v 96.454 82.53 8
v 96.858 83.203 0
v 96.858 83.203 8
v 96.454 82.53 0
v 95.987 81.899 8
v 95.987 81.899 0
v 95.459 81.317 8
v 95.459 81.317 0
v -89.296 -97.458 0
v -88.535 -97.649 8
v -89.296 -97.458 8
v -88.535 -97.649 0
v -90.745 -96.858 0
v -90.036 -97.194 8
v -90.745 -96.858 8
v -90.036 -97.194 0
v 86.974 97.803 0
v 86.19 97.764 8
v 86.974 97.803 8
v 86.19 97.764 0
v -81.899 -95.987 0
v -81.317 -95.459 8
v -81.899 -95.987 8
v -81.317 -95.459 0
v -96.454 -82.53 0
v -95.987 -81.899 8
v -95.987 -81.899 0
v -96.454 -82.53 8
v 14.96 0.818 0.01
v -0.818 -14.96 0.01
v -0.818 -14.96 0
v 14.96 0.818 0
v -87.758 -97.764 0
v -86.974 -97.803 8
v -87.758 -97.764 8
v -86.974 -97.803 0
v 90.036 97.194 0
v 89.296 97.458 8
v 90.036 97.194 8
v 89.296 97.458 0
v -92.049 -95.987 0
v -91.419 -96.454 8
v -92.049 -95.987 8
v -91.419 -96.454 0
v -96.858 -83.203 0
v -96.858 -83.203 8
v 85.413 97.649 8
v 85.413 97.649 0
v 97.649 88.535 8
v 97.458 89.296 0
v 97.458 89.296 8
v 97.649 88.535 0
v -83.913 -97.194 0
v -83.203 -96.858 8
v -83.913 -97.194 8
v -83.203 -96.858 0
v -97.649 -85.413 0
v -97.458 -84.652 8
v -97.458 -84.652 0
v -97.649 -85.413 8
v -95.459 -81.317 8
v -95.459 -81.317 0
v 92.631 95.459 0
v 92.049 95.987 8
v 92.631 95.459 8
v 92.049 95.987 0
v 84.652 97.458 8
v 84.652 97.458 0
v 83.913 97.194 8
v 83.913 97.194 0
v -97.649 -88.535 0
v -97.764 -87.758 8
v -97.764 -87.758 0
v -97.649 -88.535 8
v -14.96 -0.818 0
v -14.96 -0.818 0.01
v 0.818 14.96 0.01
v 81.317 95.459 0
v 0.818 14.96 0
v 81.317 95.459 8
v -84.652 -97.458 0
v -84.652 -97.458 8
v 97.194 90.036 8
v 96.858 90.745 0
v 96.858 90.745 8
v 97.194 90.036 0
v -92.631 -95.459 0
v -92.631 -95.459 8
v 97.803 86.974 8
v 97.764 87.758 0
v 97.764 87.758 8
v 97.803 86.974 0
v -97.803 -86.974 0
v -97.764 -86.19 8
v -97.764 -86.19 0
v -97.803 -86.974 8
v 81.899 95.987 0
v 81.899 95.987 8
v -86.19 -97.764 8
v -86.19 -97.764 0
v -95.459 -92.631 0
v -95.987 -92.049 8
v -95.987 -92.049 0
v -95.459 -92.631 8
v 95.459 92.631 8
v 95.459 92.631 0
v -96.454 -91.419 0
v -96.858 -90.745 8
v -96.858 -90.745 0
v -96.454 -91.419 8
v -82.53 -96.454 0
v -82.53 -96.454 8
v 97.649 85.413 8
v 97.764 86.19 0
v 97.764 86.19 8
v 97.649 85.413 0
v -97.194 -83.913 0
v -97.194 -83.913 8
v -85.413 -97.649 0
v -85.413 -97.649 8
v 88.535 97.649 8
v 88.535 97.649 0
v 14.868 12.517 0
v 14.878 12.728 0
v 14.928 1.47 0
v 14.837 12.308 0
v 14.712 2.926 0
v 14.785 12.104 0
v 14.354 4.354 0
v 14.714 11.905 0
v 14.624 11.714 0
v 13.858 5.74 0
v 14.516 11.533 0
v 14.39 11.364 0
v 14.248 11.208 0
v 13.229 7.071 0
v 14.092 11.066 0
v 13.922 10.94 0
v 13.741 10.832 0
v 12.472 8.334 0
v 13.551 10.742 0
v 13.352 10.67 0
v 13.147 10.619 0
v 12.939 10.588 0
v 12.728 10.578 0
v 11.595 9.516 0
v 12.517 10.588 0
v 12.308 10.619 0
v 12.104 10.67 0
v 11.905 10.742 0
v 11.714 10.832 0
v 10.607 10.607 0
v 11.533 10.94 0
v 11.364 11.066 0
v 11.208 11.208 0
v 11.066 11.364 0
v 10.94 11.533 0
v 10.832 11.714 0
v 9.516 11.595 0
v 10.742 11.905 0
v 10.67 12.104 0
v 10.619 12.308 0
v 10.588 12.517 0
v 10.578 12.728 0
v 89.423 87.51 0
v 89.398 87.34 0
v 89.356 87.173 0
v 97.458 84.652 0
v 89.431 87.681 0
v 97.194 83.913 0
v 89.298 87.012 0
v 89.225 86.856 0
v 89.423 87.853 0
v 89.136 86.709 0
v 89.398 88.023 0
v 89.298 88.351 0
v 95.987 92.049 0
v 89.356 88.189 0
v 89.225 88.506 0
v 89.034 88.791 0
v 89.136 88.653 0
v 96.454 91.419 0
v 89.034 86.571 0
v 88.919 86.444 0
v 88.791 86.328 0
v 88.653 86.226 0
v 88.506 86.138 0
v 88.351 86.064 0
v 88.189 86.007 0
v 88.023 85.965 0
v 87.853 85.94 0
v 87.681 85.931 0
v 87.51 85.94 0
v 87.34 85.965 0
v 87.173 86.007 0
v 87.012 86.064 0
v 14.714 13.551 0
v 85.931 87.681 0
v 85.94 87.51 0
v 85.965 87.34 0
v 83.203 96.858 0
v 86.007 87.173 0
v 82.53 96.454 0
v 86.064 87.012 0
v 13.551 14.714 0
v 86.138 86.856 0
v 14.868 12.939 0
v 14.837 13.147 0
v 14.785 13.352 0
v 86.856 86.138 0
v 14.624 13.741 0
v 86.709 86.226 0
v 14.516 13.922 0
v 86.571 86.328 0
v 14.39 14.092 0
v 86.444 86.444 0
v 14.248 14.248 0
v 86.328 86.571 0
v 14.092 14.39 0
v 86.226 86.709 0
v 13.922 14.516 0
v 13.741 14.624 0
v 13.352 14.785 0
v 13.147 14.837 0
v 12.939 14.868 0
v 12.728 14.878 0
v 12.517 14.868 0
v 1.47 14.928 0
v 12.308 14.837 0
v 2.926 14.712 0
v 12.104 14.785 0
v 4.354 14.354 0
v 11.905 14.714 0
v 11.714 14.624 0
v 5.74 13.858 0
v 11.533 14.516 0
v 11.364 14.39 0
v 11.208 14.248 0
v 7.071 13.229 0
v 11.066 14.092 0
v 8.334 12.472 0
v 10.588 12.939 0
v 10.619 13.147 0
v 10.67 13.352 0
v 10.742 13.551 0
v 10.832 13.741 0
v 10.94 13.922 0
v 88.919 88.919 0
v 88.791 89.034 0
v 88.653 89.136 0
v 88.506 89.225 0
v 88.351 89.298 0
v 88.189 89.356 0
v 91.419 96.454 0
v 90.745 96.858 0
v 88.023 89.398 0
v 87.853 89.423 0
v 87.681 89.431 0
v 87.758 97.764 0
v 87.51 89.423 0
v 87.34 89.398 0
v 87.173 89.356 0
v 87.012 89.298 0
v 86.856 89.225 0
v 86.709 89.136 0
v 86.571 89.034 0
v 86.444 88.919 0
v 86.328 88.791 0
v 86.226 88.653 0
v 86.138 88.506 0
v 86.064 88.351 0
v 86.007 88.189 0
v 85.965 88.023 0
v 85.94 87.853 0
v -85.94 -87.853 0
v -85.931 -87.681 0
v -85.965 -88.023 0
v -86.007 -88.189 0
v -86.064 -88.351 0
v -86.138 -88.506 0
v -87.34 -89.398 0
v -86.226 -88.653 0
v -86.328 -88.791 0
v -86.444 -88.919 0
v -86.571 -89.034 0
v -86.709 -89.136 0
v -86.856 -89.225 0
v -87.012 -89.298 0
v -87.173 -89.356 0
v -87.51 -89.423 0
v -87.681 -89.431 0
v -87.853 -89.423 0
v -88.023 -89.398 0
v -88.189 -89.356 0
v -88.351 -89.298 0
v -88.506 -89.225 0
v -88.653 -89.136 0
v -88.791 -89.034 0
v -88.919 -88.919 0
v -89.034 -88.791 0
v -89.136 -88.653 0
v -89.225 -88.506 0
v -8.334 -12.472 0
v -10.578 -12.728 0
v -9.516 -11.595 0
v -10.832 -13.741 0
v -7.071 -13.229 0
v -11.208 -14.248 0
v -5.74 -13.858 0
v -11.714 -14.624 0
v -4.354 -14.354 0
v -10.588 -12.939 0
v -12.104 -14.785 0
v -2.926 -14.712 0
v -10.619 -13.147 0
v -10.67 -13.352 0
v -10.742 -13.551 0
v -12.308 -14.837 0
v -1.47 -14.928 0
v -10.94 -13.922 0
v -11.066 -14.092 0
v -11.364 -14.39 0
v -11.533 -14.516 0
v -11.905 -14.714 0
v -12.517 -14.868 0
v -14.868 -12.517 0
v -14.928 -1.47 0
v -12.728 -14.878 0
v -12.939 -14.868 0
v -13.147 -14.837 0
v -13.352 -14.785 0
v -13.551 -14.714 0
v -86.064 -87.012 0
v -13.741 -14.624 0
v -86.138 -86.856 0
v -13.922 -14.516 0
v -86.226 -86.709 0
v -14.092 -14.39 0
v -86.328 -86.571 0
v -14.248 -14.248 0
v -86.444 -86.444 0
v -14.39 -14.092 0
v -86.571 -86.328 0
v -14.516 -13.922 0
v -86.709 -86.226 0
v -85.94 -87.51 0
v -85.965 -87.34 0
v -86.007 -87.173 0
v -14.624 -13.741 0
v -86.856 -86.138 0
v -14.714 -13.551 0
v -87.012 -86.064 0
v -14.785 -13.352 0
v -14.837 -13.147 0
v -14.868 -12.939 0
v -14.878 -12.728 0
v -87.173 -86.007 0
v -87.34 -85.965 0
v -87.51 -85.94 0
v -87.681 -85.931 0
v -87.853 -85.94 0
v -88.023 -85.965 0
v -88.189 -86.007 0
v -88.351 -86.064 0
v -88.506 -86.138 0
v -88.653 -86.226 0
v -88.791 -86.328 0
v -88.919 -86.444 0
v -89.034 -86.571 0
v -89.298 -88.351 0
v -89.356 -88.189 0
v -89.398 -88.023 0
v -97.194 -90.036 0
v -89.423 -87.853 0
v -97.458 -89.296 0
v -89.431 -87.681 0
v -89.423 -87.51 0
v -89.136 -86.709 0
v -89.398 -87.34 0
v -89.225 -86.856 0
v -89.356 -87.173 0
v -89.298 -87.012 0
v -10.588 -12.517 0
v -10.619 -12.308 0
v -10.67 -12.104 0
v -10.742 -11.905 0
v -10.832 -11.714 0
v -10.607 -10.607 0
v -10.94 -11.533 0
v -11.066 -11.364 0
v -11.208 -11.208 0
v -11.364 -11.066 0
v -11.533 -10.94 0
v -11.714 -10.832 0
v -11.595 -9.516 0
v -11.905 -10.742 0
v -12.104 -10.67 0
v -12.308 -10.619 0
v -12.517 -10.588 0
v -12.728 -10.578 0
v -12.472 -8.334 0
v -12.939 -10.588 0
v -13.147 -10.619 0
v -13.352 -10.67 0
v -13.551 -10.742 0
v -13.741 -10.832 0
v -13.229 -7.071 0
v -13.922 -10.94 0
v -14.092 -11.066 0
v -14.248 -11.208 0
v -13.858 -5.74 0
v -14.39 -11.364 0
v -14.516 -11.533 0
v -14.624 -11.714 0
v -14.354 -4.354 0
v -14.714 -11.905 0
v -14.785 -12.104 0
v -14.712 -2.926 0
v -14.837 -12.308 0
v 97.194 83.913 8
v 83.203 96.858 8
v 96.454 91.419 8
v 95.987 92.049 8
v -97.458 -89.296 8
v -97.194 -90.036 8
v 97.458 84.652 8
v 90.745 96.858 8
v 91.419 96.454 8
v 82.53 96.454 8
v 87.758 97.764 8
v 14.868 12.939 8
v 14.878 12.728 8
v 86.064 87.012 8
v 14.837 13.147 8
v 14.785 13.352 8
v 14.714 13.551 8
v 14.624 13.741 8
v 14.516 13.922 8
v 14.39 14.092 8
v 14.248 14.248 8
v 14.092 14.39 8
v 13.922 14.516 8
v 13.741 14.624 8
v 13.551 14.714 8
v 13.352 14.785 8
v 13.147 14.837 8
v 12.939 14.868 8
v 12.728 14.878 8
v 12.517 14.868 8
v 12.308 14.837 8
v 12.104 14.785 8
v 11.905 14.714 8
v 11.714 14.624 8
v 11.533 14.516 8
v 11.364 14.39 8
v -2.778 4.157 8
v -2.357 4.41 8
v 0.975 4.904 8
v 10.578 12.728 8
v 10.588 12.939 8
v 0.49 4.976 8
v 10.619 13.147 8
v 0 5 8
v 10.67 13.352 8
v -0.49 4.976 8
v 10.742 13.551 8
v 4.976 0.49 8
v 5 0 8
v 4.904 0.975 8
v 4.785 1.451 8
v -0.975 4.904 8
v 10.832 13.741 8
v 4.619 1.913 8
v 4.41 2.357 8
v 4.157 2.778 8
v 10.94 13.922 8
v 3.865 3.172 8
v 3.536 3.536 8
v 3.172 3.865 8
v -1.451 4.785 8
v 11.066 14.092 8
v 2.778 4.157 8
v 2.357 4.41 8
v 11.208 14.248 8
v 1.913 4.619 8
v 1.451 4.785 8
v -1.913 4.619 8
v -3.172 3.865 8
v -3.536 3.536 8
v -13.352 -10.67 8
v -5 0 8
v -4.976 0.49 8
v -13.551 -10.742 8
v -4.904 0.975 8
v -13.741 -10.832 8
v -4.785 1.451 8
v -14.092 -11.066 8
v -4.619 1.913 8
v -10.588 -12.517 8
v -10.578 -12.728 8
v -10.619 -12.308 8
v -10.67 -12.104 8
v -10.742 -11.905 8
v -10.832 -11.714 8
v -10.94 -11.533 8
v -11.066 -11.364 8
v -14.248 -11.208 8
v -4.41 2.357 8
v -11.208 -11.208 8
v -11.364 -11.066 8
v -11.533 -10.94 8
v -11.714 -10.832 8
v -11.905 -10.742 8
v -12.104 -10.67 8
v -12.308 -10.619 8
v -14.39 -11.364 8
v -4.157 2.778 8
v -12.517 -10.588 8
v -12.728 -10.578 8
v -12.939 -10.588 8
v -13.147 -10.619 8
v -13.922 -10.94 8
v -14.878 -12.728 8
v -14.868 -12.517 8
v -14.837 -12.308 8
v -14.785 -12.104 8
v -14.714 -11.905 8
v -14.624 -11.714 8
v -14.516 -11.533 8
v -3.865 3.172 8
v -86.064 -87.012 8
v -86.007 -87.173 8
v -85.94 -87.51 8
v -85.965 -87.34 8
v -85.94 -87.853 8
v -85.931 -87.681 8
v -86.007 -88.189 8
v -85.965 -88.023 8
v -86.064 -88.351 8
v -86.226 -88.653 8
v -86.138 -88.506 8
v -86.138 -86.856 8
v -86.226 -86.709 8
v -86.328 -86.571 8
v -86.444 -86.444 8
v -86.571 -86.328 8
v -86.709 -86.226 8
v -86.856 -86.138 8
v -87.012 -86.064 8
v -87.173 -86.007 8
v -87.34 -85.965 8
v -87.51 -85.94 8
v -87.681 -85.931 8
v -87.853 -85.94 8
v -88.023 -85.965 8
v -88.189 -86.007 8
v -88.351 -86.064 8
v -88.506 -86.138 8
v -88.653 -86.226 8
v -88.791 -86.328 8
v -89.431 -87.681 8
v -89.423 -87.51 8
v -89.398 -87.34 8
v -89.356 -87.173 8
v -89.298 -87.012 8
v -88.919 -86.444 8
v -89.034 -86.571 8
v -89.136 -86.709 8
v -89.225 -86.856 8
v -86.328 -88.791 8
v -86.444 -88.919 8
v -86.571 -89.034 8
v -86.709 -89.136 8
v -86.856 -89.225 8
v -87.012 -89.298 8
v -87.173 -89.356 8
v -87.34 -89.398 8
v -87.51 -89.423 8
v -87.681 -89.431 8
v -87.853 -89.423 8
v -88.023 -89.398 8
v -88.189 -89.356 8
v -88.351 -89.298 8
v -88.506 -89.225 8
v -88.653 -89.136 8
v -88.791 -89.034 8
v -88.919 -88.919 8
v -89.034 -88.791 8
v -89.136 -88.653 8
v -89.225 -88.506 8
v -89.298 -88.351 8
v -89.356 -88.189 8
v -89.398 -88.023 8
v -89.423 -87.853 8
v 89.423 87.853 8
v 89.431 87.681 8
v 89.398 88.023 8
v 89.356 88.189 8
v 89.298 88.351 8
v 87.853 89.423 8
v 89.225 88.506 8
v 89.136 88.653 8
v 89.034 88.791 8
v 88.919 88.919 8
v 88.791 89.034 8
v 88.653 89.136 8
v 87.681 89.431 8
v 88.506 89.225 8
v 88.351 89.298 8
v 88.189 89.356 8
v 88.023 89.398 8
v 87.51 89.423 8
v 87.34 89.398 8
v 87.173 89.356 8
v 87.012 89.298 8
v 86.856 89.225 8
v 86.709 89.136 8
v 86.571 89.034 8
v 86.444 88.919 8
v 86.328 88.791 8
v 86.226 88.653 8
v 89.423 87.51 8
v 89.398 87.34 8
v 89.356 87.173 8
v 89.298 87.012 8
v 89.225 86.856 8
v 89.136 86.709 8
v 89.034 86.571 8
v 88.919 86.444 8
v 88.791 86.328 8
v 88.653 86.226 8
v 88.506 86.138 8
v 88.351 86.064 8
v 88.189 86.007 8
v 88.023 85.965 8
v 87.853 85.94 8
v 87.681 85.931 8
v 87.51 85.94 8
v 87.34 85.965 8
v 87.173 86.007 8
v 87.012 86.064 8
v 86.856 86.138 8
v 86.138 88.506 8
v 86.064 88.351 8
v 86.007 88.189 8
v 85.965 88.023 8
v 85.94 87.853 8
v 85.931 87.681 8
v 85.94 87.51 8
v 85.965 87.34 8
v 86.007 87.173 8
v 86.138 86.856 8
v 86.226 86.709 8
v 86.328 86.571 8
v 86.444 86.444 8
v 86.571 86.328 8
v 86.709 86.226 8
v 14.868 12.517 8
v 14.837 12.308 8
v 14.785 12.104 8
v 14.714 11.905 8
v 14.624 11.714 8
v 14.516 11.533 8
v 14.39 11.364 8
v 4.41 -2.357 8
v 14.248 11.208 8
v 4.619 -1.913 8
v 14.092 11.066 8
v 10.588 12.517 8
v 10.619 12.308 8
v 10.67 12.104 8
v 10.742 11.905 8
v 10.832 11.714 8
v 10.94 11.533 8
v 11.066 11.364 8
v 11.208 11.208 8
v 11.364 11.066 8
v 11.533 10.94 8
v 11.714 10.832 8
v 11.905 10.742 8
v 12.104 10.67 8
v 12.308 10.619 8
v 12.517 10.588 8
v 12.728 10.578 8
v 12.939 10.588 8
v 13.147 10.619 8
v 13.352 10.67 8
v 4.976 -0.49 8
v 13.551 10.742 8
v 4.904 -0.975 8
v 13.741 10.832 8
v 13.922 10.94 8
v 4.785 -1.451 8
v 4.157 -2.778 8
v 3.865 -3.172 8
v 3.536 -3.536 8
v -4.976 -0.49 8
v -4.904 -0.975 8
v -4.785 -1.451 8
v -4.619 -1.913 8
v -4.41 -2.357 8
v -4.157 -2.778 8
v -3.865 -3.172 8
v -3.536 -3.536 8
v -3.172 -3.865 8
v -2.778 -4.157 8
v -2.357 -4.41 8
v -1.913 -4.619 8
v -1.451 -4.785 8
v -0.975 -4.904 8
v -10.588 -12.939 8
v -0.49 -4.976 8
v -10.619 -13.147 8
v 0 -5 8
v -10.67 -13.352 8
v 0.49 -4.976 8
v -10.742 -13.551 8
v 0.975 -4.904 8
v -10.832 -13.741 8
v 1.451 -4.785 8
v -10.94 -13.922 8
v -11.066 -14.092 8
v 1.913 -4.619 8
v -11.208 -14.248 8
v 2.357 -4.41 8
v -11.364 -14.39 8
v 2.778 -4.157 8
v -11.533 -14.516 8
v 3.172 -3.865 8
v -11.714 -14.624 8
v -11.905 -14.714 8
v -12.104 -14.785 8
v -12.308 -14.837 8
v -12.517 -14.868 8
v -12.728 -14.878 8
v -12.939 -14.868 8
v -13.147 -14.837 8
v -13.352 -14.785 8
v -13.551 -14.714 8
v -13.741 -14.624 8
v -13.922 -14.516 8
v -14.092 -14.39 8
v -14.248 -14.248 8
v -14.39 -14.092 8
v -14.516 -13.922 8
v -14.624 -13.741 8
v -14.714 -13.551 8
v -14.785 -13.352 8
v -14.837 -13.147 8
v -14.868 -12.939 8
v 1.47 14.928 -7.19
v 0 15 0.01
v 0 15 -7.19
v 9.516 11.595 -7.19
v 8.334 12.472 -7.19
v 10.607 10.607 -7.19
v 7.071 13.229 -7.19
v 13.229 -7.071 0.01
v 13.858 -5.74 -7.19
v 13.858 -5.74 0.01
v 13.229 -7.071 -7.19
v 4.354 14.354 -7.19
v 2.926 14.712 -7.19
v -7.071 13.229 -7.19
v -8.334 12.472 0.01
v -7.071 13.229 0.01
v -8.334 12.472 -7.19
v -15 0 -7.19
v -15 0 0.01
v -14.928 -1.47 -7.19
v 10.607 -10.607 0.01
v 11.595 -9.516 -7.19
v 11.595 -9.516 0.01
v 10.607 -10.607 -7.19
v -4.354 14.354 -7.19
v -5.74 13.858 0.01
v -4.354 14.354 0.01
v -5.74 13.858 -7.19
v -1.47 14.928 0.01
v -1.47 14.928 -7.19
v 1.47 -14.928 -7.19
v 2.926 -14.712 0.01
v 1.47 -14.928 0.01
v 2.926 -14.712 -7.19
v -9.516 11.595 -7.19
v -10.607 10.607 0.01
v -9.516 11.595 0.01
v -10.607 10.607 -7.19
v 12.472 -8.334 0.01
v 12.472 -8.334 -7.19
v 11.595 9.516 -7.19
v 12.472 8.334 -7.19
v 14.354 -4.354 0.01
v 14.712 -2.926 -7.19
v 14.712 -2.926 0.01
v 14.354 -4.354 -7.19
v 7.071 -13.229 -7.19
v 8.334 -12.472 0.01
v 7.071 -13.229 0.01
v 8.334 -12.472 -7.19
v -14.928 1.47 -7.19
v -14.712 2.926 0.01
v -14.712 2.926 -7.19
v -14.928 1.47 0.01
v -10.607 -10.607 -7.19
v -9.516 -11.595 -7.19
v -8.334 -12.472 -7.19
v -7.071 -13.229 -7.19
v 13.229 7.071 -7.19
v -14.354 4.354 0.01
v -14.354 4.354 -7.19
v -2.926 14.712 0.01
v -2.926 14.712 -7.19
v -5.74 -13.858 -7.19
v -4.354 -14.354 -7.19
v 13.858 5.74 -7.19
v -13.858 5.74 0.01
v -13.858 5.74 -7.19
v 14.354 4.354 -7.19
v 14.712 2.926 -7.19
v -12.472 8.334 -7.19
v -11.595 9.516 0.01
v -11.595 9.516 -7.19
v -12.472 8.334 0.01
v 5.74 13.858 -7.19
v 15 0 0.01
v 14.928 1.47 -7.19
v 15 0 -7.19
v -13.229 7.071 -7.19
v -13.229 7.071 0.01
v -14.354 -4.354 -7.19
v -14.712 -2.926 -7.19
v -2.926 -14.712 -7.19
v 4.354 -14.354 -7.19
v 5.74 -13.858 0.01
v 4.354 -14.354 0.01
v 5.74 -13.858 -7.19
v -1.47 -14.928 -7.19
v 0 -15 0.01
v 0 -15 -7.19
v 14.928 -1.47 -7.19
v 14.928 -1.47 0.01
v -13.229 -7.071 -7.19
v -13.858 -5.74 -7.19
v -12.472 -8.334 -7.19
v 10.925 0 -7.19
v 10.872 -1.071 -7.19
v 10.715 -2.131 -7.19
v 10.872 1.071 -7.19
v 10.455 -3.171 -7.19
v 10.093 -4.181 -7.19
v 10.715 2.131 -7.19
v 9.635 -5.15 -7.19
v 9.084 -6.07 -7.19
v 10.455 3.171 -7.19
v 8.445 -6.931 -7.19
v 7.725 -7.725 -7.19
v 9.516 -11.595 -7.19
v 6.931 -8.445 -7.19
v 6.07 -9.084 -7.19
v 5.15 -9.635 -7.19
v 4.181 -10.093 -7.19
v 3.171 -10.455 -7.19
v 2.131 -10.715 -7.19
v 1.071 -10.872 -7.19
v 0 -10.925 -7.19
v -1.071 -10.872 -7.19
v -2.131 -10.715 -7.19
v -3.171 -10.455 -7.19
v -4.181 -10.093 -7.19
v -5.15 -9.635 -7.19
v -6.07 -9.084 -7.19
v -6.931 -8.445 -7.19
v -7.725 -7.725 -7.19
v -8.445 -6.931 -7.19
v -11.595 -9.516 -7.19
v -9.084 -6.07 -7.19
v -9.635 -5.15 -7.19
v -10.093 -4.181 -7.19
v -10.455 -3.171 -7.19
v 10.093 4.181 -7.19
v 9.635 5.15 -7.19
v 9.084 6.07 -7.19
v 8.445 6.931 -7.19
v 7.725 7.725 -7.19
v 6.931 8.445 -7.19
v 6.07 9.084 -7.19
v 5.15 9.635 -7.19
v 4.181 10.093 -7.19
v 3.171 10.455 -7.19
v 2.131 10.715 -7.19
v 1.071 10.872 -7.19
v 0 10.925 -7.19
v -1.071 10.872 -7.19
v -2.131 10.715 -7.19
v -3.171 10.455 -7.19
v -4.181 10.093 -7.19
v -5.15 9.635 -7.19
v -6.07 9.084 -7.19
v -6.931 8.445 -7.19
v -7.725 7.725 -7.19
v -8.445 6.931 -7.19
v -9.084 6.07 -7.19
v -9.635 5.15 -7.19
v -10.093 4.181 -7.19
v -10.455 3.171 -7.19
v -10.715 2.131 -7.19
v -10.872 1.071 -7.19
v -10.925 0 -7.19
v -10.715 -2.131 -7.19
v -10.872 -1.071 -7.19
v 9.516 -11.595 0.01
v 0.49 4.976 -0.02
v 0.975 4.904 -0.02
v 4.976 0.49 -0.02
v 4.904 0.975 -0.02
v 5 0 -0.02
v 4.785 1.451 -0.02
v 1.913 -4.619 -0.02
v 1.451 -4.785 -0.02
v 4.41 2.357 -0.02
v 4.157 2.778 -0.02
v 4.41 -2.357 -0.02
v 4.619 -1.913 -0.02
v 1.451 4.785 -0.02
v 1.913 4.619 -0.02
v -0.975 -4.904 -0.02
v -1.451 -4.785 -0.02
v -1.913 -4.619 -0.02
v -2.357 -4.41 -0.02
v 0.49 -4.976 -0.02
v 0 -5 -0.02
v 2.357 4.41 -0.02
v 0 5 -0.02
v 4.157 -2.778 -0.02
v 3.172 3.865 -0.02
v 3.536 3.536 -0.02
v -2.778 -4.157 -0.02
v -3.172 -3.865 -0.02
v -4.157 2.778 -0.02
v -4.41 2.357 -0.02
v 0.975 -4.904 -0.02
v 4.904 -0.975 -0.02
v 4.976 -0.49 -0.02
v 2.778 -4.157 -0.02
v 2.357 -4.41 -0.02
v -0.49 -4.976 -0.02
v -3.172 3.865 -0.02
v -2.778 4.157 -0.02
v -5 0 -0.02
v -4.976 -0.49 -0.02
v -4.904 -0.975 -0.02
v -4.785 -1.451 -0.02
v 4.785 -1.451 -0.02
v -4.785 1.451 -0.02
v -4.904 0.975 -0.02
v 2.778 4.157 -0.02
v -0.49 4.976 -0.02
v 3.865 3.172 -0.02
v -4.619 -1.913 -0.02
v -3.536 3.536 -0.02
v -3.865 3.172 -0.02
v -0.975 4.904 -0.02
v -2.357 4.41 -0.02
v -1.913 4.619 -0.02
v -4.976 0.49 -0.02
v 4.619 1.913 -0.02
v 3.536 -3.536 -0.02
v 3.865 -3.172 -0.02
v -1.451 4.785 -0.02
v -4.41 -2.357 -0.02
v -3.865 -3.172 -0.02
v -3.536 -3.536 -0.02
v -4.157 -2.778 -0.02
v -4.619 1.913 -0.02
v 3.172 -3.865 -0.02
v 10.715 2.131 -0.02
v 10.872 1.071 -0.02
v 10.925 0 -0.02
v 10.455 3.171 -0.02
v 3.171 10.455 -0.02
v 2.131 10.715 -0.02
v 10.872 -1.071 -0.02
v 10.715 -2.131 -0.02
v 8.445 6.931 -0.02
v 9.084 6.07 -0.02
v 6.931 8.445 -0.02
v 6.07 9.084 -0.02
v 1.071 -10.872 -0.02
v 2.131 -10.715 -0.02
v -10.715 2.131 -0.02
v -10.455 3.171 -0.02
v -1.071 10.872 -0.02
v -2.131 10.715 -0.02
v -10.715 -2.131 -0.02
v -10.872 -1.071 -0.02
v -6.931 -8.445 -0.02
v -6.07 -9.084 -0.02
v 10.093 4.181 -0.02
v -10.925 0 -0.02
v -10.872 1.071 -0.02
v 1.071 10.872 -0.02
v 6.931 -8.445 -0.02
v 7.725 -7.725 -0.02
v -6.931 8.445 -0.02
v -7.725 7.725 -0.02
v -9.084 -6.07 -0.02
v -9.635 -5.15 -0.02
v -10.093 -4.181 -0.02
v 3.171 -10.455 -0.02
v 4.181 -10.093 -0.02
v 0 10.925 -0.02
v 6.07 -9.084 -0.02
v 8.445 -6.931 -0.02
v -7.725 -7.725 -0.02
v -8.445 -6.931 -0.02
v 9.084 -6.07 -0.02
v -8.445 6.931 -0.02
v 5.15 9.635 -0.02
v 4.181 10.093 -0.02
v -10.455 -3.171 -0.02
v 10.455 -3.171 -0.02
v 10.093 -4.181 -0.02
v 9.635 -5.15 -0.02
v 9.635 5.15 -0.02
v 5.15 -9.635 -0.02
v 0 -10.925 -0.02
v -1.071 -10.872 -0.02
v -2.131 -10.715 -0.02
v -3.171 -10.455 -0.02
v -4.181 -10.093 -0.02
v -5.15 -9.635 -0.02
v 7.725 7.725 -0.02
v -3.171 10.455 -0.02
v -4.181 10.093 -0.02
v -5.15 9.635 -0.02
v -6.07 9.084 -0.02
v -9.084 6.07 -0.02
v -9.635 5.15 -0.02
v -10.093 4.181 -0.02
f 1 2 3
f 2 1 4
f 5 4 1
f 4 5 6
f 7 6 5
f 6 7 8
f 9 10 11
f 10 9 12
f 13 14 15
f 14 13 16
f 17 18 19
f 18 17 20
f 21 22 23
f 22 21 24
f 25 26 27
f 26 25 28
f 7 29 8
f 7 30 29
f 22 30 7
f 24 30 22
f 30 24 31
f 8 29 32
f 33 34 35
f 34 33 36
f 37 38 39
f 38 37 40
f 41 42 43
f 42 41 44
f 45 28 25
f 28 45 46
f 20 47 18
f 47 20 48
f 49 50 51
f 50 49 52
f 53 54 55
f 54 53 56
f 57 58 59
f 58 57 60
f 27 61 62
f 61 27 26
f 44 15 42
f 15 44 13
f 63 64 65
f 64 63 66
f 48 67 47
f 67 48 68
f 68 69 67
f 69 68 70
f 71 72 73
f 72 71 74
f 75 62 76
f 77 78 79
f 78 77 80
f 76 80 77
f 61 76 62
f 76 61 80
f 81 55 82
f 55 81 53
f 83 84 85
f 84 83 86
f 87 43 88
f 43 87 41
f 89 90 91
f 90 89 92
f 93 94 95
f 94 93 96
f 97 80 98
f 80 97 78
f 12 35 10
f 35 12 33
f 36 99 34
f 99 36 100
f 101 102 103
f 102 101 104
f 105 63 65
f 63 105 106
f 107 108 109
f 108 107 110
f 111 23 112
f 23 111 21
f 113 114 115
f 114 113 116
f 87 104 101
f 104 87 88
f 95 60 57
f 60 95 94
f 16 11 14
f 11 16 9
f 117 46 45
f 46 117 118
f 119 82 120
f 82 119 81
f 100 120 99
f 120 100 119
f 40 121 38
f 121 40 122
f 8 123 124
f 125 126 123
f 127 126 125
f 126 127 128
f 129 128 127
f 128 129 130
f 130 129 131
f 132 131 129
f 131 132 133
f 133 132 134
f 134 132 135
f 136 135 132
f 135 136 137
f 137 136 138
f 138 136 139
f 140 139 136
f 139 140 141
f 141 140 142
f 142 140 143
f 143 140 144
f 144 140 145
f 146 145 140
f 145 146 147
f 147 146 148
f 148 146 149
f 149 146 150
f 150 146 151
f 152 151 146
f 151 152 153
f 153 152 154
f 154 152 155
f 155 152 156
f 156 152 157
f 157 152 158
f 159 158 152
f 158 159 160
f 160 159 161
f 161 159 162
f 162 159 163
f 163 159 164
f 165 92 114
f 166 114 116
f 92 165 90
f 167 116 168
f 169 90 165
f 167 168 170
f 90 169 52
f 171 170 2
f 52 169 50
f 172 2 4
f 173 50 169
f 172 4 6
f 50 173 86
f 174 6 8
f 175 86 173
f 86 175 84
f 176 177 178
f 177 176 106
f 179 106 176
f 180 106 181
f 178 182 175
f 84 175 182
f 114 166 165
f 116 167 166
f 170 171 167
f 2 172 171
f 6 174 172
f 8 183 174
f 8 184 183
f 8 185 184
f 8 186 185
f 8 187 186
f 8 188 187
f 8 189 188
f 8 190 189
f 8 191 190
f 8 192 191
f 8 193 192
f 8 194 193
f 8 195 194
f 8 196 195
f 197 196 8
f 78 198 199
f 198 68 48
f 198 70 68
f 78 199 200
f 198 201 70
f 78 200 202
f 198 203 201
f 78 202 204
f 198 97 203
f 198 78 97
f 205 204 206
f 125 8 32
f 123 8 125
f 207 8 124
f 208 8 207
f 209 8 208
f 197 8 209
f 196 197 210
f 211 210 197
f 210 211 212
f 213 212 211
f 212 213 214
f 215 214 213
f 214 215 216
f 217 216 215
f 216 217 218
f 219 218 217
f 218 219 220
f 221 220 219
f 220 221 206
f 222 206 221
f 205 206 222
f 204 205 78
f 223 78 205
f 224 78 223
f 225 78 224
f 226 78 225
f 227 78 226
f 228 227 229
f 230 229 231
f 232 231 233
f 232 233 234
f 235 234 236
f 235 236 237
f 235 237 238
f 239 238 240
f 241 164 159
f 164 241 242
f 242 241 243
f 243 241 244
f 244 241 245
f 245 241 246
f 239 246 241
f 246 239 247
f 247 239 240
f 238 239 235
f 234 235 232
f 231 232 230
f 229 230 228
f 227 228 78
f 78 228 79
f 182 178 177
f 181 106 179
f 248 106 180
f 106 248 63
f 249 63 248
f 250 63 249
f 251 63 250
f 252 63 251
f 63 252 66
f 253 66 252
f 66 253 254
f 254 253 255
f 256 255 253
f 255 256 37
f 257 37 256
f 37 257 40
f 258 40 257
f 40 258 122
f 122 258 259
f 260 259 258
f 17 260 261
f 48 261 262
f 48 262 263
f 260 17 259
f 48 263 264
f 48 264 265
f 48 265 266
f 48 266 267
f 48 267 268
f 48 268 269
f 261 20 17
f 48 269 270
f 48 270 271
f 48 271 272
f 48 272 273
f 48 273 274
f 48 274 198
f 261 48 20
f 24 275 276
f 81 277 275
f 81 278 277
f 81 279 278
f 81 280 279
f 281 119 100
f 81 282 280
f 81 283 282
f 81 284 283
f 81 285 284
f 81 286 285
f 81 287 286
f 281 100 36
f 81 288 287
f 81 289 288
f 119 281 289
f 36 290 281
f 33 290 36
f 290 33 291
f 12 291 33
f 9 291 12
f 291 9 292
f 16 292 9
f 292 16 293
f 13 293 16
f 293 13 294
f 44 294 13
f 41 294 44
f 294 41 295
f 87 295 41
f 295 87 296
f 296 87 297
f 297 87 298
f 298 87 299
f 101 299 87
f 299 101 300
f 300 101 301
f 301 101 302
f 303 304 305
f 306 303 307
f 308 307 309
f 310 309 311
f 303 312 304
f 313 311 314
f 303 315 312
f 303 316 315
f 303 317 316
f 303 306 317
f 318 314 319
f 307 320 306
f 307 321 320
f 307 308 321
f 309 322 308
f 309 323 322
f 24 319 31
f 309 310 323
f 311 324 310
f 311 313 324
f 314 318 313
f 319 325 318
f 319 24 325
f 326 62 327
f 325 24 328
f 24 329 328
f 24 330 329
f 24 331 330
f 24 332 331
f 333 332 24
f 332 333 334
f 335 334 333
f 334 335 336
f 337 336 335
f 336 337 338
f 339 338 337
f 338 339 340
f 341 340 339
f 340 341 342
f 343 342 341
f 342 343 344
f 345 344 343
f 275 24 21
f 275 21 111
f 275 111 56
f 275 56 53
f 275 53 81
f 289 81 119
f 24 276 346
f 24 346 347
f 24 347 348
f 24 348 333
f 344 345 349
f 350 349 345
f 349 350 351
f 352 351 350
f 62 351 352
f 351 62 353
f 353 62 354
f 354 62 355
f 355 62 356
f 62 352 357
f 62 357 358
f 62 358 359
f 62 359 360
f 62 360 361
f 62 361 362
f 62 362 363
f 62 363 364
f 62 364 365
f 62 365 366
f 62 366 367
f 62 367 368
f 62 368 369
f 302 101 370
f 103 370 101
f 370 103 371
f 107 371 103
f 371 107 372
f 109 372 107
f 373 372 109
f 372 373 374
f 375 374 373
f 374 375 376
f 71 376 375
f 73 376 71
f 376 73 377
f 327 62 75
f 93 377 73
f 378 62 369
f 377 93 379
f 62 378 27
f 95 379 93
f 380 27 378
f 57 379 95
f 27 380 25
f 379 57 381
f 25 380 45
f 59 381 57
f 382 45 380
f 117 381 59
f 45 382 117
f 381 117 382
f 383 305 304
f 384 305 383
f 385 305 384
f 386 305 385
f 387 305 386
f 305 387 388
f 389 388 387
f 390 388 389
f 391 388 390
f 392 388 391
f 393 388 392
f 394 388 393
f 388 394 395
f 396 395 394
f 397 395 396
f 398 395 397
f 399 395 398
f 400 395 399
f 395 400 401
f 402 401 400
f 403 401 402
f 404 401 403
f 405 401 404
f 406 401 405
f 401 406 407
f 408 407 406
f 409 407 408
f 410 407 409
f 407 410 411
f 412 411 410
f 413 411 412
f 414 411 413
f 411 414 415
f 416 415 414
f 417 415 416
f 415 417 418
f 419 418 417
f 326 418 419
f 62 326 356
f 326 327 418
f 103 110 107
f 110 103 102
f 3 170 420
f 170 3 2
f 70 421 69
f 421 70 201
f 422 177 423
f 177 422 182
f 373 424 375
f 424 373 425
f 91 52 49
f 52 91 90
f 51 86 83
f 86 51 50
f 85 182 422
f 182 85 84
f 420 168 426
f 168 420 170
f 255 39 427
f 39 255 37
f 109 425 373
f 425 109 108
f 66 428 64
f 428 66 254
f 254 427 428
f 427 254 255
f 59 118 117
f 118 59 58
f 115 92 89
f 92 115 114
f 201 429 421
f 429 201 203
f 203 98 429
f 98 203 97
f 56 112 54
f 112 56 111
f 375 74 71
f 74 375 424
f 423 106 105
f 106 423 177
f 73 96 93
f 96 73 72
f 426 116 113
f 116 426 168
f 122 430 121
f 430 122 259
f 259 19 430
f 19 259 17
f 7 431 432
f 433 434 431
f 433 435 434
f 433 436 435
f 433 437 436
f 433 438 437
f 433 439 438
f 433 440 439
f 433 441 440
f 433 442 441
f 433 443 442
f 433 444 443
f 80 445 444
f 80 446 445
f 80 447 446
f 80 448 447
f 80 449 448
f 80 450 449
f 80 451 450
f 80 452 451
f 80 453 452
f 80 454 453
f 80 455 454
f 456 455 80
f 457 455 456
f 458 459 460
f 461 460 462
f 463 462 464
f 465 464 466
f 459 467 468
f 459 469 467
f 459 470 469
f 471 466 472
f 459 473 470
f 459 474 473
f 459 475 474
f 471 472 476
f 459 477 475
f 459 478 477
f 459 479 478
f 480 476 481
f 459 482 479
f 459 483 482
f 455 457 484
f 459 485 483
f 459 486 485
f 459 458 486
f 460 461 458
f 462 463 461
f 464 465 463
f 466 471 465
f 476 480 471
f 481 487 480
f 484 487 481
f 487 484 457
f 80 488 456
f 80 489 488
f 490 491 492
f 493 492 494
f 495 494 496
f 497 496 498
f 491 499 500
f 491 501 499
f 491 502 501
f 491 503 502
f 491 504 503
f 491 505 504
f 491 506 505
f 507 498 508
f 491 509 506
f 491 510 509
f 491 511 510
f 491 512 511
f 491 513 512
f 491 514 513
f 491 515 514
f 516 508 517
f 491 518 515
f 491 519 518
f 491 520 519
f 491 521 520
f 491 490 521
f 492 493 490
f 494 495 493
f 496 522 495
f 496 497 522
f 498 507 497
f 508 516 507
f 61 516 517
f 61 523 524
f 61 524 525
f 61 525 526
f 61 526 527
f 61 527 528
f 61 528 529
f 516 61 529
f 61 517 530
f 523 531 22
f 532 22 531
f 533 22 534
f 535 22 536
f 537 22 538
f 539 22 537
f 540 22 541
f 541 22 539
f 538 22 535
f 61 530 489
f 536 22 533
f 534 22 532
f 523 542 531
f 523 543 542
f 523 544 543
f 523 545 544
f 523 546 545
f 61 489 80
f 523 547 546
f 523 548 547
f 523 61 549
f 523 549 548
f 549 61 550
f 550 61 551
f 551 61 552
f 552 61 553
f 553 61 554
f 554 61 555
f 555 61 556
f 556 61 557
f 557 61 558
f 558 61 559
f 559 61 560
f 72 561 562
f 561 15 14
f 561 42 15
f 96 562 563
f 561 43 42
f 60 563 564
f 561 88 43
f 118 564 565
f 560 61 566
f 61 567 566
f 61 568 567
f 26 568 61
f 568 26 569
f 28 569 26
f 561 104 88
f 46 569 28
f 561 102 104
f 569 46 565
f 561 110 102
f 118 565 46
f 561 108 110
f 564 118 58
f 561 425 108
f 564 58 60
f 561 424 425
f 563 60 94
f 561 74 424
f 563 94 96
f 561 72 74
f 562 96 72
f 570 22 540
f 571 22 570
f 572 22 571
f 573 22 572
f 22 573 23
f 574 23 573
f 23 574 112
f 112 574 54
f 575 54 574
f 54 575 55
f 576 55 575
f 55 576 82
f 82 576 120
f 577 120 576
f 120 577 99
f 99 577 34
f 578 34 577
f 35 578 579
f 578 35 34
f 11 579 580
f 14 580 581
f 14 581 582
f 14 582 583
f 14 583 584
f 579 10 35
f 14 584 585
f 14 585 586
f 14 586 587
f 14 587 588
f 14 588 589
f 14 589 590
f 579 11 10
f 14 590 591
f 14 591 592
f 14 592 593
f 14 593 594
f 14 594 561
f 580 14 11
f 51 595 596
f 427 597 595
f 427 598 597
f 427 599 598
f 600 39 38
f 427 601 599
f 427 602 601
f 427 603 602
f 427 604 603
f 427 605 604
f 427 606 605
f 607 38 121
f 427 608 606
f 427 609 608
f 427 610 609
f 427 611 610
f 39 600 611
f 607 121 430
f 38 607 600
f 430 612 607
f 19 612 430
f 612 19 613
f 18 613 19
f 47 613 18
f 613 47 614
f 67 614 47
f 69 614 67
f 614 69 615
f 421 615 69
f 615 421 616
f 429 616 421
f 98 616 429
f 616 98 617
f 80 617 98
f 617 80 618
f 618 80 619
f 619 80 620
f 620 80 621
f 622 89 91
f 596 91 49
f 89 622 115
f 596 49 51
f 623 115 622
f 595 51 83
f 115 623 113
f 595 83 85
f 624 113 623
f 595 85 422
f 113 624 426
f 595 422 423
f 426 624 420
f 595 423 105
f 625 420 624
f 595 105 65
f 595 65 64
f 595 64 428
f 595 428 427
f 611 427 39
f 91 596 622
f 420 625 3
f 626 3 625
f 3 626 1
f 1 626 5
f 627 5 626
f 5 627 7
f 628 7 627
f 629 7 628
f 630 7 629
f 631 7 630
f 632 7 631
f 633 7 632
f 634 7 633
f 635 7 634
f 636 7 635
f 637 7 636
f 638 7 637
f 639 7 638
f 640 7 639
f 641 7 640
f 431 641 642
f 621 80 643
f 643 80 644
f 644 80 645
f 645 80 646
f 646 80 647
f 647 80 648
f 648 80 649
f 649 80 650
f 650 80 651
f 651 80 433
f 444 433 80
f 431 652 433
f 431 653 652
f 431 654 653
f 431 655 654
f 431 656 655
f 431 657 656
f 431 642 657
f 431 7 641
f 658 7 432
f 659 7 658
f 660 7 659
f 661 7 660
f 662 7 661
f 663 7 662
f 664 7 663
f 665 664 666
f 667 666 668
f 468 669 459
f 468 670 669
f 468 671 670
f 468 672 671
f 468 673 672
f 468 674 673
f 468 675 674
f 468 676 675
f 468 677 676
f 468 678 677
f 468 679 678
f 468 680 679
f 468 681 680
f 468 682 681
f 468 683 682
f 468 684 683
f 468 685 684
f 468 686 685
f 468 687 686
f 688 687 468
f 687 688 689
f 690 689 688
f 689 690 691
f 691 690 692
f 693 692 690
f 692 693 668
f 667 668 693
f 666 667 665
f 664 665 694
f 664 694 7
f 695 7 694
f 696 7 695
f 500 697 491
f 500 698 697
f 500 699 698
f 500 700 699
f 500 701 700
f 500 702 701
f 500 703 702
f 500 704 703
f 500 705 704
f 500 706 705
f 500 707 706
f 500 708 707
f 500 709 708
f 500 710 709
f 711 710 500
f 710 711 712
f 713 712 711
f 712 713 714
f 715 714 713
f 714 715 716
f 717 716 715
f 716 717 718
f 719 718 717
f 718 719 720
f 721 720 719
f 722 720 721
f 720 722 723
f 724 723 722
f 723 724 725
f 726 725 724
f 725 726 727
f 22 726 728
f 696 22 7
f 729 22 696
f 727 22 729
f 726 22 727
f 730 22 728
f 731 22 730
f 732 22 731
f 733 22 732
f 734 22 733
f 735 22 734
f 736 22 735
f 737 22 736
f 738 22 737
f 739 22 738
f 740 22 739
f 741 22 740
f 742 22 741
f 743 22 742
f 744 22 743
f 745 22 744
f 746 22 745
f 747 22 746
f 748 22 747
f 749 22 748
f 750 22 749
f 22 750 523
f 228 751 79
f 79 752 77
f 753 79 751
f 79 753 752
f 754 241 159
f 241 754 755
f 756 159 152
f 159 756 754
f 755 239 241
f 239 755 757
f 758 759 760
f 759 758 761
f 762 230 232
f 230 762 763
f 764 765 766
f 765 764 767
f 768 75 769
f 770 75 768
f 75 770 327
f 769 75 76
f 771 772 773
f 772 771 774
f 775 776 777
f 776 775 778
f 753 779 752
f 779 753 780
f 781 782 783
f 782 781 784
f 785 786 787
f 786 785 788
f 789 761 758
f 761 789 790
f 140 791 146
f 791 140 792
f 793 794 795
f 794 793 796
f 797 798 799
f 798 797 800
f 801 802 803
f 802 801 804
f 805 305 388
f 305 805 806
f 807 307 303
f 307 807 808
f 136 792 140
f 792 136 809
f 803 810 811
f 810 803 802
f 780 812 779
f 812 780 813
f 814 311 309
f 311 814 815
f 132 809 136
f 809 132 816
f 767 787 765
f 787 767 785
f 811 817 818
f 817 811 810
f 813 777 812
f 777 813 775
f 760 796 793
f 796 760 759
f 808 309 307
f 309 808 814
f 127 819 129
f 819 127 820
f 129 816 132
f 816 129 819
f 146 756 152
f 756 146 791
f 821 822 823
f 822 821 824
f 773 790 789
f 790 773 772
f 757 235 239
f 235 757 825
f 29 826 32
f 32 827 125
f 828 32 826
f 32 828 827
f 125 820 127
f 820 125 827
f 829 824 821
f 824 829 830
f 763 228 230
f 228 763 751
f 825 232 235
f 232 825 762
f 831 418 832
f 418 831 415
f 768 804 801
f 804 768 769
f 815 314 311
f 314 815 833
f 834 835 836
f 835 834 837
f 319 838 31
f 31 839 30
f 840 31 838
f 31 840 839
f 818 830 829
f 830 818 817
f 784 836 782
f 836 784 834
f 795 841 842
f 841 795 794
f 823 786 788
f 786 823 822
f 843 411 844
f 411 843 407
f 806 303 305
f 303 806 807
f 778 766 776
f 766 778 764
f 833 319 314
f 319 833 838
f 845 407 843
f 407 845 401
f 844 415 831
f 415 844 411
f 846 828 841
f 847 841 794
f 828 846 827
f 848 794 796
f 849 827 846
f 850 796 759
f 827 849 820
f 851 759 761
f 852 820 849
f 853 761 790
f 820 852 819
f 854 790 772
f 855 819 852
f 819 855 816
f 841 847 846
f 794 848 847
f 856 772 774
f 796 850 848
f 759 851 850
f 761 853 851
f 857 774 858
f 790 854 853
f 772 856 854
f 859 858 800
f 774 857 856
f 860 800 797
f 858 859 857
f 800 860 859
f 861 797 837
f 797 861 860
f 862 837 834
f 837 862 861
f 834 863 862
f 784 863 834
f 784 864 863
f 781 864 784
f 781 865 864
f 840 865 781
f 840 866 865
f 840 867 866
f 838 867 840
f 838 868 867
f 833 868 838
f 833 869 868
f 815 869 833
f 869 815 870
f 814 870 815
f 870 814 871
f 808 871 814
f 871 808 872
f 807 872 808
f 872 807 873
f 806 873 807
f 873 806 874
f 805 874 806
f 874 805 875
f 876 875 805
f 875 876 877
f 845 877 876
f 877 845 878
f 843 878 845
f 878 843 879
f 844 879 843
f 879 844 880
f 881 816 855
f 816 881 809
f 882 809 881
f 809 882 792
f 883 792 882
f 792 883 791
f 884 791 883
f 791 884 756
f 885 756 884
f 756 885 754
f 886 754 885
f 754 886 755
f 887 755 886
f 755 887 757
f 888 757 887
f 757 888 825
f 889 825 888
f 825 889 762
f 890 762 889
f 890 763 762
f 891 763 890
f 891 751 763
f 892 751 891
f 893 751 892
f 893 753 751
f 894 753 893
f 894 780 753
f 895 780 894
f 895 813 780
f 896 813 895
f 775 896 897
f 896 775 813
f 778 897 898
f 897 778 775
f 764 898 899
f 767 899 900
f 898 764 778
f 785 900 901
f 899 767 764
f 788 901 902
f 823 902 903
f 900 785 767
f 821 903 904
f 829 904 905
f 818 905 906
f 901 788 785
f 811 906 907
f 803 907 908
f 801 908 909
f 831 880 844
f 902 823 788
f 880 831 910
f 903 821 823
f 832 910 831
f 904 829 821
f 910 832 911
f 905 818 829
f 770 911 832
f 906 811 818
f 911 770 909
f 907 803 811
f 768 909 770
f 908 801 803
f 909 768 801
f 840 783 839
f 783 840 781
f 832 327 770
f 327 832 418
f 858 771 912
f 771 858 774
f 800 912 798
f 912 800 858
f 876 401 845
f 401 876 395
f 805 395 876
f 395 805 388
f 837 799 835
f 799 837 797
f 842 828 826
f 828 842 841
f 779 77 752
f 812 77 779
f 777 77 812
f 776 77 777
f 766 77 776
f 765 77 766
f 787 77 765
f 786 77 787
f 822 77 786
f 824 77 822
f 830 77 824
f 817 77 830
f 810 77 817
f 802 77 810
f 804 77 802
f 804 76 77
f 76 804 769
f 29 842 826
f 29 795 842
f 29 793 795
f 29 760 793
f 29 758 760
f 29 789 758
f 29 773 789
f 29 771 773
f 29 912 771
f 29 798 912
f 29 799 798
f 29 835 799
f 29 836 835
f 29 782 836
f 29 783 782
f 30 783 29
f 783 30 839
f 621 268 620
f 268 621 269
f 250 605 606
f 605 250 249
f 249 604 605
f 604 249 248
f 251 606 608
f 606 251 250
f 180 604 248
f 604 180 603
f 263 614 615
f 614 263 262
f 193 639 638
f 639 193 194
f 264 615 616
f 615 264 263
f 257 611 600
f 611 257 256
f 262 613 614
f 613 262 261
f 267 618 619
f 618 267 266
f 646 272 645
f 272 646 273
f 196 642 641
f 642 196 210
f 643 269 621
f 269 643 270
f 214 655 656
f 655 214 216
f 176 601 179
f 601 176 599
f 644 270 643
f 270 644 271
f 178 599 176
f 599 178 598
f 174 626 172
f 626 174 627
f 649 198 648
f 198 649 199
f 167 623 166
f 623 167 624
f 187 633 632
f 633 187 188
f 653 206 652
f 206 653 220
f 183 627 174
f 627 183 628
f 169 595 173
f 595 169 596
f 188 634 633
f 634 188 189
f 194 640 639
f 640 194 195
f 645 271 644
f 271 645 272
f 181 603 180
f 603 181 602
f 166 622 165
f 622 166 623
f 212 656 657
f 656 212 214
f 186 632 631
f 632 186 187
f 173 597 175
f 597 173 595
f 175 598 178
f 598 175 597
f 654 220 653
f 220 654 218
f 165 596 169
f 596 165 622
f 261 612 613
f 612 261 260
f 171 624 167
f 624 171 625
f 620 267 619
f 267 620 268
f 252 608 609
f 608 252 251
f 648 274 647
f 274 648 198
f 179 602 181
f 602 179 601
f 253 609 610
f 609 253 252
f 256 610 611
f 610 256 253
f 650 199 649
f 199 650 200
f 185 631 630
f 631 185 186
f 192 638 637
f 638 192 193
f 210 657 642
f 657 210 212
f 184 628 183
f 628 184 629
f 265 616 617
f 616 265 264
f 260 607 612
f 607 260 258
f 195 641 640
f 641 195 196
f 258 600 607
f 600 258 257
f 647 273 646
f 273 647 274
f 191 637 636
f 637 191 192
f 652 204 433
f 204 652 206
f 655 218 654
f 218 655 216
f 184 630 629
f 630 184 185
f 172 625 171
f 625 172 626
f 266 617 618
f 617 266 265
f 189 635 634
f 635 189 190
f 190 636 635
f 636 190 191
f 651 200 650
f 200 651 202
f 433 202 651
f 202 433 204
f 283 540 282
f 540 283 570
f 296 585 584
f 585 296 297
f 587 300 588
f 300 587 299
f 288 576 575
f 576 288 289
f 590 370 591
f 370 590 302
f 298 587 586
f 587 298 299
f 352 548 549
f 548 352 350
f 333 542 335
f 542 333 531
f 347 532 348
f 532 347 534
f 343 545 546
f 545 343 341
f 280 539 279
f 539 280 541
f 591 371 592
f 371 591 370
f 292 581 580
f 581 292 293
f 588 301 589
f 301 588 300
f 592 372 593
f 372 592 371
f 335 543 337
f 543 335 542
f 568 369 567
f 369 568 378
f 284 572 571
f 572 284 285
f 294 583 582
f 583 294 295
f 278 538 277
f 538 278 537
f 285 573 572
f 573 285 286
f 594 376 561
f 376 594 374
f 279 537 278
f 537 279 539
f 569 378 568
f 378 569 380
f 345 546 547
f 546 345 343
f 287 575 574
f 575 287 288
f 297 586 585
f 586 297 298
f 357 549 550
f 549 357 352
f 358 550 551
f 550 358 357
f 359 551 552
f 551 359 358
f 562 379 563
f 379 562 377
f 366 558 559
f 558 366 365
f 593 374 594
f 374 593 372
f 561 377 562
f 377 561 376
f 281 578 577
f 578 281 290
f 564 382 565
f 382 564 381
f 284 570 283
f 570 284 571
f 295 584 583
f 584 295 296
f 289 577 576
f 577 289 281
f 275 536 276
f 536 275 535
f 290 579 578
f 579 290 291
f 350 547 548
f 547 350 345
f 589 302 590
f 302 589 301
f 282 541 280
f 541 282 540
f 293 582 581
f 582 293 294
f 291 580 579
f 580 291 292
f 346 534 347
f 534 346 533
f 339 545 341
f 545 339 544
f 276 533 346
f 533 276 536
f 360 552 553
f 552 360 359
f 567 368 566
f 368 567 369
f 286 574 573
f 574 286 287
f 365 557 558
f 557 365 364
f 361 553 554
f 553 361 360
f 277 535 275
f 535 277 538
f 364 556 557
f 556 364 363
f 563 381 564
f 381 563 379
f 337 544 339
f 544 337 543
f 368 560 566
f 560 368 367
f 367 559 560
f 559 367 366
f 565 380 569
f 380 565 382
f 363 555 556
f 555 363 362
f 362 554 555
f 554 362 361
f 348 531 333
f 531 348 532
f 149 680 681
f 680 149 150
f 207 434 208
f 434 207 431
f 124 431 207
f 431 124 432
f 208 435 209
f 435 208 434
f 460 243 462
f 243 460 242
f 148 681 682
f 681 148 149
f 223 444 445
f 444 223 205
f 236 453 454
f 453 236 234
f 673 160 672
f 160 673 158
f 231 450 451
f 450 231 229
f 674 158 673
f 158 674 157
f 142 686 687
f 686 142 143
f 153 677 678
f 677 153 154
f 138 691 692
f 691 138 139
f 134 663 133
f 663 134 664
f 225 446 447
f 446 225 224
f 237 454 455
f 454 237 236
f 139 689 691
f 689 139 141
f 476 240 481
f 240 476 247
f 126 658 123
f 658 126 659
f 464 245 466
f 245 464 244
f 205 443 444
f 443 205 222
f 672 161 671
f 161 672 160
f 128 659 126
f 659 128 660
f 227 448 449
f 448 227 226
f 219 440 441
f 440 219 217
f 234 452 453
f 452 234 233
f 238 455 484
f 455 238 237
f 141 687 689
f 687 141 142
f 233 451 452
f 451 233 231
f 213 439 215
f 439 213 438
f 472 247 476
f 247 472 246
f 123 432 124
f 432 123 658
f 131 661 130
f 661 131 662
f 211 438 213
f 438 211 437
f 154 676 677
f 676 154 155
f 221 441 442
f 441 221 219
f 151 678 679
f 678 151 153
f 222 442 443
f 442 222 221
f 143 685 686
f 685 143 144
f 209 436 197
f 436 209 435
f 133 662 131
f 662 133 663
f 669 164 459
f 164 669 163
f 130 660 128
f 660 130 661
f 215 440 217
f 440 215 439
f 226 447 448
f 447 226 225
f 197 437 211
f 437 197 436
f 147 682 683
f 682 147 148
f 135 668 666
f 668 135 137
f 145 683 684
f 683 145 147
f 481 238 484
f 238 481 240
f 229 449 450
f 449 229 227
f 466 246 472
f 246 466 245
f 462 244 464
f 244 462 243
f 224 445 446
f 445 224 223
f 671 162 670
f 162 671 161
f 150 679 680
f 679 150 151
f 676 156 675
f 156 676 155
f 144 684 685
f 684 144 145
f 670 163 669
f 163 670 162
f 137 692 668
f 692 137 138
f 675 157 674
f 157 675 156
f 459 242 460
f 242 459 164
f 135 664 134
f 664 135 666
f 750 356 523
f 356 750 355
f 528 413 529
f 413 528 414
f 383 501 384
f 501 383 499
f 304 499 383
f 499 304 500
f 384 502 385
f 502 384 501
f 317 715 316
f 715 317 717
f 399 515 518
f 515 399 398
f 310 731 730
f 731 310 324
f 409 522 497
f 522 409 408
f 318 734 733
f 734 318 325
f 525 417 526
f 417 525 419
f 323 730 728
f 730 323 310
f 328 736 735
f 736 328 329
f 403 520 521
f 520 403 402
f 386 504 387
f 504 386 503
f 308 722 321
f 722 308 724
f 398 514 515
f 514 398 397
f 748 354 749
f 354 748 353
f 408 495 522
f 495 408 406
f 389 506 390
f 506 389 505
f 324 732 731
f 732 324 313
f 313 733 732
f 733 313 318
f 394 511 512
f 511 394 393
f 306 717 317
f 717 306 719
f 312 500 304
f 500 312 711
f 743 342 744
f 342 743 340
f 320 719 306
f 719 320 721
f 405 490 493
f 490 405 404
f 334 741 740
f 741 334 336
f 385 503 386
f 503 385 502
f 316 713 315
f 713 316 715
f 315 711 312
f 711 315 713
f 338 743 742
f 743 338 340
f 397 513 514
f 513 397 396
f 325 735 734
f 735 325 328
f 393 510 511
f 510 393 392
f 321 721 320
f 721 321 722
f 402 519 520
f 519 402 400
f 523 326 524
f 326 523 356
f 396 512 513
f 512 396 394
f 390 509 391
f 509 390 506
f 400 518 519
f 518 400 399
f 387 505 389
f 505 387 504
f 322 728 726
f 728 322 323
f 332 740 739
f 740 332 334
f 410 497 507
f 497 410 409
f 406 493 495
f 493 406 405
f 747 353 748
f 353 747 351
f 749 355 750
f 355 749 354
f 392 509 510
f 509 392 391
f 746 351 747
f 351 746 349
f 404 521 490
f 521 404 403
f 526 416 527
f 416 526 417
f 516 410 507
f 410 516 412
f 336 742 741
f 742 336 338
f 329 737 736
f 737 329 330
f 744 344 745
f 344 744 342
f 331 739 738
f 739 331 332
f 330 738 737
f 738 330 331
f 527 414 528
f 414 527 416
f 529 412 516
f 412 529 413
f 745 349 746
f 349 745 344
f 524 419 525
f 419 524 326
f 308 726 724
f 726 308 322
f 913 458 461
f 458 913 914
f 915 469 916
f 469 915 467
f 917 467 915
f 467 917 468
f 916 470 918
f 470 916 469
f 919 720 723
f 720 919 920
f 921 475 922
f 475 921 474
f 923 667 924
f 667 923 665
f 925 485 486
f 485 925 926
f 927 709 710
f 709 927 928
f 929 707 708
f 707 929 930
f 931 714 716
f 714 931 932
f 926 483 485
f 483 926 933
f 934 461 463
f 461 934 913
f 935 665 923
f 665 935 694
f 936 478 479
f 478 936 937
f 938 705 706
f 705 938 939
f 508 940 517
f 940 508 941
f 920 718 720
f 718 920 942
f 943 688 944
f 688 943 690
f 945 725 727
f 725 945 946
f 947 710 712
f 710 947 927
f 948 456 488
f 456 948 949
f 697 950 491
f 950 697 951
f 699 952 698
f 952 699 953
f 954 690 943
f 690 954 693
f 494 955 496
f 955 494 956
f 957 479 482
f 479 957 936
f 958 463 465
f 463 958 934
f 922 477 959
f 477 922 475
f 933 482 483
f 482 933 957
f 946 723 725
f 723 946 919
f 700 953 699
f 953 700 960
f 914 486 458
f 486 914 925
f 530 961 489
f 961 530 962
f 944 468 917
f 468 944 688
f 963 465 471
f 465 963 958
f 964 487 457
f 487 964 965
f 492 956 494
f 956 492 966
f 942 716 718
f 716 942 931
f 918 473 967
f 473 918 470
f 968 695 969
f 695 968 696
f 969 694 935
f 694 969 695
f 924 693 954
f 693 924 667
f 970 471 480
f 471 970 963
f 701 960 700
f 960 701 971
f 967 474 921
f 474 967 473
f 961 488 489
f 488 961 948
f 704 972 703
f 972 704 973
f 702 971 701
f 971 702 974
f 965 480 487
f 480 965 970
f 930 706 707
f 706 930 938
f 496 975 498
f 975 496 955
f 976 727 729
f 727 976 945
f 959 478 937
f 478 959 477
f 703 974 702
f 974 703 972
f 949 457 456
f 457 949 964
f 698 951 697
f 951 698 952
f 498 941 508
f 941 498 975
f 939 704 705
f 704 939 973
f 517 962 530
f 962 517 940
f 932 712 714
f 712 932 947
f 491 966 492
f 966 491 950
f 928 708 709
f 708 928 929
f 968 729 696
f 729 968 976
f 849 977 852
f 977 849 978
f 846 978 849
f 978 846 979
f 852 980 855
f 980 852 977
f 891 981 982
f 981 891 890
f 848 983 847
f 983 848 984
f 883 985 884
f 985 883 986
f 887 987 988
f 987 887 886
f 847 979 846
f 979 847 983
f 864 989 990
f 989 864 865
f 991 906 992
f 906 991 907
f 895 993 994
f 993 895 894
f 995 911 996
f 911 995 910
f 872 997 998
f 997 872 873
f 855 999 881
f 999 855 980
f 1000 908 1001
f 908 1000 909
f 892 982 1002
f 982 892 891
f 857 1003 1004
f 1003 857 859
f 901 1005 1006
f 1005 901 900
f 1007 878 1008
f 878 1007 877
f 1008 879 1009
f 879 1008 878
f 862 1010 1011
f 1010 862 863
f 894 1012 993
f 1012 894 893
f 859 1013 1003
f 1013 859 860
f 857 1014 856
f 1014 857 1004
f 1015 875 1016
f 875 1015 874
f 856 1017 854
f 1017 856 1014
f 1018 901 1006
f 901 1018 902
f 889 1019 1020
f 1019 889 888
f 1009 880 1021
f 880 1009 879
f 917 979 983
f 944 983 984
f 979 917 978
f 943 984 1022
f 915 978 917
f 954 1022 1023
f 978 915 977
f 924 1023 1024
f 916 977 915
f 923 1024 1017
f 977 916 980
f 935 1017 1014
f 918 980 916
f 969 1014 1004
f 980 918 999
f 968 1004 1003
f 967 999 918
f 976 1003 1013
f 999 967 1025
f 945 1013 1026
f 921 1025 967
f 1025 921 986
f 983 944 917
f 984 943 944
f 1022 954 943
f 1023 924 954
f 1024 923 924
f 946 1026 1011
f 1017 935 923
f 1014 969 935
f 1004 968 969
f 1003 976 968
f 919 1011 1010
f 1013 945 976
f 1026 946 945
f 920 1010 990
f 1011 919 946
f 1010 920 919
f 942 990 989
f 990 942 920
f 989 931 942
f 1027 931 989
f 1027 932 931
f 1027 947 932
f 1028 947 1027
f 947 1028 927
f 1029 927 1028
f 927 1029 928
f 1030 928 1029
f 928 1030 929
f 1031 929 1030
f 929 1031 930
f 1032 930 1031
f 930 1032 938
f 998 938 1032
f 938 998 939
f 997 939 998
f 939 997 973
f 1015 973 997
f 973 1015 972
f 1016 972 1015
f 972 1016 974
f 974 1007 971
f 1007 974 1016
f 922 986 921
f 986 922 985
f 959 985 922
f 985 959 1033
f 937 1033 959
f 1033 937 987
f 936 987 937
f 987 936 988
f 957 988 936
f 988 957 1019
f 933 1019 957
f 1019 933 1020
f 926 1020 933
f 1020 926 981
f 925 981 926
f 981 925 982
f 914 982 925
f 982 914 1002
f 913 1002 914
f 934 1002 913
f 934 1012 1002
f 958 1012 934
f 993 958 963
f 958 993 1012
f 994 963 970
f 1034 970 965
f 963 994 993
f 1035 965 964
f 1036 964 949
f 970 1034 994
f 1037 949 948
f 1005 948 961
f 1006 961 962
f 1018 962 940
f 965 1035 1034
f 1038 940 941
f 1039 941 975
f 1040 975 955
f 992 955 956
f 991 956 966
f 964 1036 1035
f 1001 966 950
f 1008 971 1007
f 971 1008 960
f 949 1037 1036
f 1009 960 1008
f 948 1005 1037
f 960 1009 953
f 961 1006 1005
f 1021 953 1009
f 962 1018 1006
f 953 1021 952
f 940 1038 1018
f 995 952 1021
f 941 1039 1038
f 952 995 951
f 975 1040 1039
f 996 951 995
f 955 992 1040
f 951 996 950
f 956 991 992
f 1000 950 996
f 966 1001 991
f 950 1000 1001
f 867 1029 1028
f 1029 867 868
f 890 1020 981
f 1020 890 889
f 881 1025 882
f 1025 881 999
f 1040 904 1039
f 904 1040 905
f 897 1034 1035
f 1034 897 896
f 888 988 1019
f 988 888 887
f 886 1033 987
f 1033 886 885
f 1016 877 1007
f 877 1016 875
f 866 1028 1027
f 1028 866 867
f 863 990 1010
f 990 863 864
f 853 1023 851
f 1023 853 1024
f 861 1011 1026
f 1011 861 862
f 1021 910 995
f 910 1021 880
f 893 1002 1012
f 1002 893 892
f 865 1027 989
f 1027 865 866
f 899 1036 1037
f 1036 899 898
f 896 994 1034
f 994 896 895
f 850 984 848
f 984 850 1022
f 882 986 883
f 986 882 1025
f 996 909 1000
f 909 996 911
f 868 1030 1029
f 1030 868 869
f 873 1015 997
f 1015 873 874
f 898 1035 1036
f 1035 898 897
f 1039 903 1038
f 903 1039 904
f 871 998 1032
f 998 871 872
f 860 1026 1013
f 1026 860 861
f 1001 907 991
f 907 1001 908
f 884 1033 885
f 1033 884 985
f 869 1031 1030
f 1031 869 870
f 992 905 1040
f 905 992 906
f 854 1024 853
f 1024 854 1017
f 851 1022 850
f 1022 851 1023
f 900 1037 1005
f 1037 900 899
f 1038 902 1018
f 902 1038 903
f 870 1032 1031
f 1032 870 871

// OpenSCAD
// Gen-DE — front BEARING BRIDGE (bar endbell, 2026-10-10): a 608 boss on a 20 mm wide bar that spans the
// two frame rods at 45 deg and 45+180 deg (R = flange_bolt_r). The front bridge uses the rods at 45/225 deg, the rear
// bridge the rods at 135/315 deg, so the two bridges cross at 90 deg and the stator is held at 4 points.
// A bar instead of a full disc is what lets this big-ring kit fit ONE 410 mm plate. Print flat face DOWN (boss up, no supports).
// Brace holes (temporary M4 jack rods, R = brace_r) sit on the bar axis.
include <parameters.scad>;
$fn = 64;
bar_w = 20;
bar_len = 2 * (flange_bolt_r + 9);
module bar_2d() { offset(r=8) offset(delta=-8) square([bar_len, bar_w], center=true); }
difference() {
    rotate([0, 0, 45]) union() {
        linear_extrude(endbell_thick) bar_2d();
        translate([0, 0, -bearing_h + 0.01]) cylinder(d=30, h=bearing_h);
    }
    translate([0, 0, -bearing_h - 0.1]) cylinder(d=endbell_shaft_clear, h=50);
    translate([0, 0, -bearing_h - 0.02]) cylinder(d=bearing_d, h=bearing_h);
    for (s = [0, 180]) rotate([0, 0, 45 + s]) translate([flange_bolt_r, 0, -20]) cylinder(d=m3_clear, h=60);
    for (a = brace_angles) translate([brace_r*cos(a), brace_r*sin(a), -20]) cylinder(d=brace_d, h=50);
}
